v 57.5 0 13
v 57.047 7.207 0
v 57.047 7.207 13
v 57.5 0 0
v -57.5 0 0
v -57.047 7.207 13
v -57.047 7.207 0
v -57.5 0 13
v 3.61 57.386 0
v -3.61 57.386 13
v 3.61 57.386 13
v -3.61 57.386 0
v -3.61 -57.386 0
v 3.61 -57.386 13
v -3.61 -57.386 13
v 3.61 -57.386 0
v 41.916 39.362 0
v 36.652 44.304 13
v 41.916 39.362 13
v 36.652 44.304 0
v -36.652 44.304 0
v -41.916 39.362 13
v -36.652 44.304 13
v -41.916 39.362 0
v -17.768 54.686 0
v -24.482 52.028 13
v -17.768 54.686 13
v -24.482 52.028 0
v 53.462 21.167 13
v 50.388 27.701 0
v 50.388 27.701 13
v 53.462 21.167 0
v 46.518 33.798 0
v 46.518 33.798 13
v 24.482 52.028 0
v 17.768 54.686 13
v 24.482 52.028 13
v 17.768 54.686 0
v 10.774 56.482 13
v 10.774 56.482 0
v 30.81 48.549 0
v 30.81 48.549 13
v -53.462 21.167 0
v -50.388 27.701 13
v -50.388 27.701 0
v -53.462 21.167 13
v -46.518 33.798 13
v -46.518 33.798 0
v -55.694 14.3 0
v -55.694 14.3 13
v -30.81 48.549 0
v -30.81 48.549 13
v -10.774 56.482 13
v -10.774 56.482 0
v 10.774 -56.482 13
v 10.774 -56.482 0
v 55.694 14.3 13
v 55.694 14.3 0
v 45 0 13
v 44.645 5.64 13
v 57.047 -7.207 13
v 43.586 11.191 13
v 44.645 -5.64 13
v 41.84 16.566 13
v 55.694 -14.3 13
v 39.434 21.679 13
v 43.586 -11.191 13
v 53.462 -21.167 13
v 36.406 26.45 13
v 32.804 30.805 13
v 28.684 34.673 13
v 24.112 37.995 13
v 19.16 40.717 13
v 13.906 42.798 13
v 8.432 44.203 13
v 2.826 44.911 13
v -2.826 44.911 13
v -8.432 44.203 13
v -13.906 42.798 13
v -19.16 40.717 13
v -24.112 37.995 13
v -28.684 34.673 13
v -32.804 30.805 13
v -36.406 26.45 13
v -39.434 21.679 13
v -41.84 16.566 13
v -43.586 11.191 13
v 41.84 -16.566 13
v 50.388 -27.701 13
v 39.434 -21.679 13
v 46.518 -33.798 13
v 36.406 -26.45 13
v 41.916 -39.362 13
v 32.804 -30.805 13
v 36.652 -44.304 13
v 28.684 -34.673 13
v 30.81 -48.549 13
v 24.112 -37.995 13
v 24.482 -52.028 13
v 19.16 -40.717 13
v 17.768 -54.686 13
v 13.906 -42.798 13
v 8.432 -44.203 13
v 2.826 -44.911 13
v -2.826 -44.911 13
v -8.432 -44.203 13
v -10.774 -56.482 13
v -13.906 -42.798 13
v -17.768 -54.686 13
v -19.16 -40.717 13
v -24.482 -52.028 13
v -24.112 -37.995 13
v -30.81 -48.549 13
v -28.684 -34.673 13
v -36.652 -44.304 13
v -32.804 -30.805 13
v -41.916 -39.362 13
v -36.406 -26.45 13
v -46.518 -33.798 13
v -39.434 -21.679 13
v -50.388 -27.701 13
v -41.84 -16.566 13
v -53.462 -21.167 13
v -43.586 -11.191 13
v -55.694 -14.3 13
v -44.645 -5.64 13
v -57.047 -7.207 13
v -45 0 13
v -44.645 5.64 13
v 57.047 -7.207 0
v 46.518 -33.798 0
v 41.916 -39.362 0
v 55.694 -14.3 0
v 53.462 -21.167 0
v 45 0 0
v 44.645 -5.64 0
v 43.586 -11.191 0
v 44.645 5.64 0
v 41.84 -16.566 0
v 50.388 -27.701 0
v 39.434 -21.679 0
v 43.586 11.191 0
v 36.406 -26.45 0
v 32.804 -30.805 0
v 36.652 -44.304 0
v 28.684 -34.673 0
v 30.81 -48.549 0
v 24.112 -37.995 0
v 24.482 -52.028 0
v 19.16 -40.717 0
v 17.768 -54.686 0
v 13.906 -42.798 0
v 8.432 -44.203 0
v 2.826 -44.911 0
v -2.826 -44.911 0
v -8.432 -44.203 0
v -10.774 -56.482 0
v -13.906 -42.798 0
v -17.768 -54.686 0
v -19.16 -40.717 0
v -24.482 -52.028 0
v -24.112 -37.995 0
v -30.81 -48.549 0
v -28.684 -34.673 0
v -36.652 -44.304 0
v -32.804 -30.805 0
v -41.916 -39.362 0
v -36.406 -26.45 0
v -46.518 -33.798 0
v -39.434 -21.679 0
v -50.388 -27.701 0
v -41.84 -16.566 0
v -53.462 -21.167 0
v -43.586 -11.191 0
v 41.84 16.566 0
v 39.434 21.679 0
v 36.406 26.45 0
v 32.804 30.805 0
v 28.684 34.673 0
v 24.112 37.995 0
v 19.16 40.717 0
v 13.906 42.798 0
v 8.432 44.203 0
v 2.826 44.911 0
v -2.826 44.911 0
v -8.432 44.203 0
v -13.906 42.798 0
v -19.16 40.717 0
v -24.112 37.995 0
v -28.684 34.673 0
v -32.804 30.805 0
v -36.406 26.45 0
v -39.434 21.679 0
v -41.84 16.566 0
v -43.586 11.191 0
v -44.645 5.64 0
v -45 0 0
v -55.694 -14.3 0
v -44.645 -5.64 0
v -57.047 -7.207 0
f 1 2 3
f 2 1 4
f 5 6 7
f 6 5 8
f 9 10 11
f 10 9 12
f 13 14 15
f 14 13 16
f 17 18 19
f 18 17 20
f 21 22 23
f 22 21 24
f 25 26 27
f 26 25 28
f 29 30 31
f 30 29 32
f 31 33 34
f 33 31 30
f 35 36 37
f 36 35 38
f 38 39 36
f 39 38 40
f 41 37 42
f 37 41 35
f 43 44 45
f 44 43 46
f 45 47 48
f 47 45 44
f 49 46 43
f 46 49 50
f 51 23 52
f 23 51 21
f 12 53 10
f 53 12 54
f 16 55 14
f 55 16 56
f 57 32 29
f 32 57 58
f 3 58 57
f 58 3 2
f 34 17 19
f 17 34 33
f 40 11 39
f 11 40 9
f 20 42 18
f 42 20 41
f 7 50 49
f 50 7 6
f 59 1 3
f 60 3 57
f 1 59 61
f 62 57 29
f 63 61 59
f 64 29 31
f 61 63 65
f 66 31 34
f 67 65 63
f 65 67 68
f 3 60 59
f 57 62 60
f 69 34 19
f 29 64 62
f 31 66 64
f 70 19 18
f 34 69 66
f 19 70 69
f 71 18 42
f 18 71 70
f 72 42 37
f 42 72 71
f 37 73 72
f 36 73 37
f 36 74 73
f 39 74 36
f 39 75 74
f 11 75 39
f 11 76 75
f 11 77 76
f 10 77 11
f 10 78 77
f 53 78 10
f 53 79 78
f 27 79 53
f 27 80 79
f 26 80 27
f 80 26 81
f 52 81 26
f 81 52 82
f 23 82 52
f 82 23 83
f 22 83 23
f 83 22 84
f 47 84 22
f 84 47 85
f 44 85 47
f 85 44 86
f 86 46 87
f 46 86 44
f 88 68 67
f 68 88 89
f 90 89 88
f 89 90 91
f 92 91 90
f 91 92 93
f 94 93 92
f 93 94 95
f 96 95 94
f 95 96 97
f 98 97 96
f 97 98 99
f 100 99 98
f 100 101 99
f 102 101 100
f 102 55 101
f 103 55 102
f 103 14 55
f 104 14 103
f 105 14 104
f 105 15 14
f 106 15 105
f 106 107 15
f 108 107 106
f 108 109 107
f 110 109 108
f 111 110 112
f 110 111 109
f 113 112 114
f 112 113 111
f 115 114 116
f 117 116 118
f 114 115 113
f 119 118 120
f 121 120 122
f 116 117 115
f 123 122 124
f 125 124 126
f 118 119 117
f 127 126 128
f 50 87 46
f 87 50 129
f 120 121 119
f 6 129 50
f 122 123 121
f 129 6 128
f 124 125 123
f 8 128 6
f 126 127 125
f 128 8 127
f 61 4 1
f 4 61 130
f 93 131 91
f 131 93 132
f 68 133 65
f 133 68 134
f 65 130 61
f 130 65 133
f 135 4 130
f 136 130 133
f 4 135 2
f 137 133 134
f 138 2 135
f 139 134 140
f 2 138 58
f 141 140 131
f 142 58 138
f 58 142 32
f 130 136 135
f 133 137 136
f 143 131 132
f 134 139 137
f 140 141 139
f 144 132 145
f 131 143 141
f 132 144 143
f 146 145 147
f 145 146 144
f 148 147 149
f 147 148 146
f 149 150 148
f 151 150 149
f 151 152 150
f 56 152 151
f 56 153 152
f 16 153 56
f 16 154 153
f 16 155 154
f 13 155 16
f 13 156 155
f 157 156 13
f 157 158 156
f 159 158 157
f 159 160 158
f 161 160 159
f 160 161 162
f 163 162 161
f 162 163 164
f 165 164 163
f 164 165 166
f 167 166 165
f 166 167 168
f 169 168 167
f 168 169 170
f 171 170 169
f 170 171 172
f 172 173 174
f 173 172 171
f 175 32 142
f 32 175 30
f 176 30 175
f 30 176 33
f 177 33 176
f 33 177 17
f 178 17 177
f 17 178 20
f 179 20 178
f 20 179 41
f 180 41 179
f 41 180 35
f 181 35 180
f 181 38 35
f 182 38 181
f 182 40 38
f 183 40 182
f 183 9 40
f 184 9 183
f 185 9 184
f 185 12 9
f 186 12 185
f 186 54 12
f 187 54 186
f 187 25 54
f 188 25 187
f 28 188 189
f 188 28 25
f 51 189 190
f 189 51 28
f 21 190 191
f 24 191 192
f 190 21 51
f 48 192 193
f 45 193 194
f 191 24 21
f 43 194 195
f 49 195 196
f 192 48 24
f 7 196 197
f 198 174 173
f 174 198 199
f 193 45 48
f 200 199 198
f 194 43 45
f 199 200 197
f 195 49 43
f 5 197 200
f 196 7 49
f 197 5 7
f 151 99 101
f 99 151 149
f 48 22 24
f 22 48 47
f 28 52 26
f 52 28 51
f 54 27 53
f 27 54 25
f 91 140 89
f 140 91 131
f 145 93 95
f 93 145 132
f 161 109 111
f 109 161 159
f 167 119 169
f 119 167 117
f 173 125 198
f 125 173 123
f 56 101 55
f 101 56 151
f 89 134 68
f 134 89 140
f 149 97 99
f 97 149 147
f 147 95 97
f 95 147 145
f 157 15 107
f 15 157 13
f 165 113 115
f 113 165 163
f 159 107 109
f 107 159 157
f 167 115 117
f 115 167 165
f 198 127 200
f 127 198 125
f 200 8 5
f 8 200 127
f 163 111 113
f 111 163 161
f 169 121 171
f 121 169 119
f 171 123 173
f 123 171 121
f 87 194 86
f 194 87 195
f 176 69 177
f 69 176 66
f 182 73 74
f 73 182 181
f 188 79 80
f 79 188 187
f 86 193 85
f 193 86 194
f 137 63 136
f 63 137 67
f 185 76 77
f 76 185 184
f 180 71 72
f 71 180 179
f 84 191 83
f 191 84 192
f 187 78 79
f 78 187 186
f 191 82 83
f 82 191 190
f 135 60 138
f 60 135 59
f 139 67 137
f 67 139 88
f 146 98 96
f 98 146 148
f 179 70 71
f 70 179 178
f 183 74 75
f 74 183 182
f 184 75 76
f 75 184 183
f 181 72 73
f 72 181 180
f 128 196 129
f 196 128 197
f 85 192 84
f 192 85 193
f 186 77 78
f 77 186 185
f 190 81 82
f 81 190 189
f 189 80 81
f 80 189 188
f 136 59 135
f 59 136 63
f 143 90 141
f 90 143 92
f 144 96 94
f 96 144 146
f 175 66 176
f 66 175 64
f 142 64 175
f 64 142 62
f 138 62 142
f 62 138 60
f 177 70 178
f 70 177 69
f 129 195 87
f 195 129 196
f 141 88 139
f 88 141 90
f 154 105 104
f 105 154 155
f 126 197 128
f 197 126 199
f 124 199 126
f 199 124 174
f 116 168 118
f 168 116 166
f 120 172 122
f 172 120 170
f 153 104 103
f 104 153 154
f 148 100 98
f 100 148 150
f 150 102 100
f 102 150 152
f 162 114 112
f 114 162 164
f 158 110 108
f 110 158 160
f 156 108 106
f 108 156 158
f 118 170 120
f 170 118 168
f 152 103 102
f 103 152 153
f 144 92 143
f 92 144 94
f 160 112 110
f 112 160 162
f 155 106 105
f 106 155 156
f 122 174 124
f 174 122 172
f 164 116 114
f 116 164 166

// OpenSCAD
$fn = 50;


difference() {
	union() {
		translate(v = [0, 0, 0]) {
			rotate(a = [0, 0, 0]) {
				cylinder(h = 13, r = 57.5000000000);
			}
		}
	}
	union() {
		translate(v = [0, 0, 0]) {
			rotate(a = [0, 0, 0]) {
				cylinder(h = 13, r = 45.0000000000);
			}
		}
	}
}
